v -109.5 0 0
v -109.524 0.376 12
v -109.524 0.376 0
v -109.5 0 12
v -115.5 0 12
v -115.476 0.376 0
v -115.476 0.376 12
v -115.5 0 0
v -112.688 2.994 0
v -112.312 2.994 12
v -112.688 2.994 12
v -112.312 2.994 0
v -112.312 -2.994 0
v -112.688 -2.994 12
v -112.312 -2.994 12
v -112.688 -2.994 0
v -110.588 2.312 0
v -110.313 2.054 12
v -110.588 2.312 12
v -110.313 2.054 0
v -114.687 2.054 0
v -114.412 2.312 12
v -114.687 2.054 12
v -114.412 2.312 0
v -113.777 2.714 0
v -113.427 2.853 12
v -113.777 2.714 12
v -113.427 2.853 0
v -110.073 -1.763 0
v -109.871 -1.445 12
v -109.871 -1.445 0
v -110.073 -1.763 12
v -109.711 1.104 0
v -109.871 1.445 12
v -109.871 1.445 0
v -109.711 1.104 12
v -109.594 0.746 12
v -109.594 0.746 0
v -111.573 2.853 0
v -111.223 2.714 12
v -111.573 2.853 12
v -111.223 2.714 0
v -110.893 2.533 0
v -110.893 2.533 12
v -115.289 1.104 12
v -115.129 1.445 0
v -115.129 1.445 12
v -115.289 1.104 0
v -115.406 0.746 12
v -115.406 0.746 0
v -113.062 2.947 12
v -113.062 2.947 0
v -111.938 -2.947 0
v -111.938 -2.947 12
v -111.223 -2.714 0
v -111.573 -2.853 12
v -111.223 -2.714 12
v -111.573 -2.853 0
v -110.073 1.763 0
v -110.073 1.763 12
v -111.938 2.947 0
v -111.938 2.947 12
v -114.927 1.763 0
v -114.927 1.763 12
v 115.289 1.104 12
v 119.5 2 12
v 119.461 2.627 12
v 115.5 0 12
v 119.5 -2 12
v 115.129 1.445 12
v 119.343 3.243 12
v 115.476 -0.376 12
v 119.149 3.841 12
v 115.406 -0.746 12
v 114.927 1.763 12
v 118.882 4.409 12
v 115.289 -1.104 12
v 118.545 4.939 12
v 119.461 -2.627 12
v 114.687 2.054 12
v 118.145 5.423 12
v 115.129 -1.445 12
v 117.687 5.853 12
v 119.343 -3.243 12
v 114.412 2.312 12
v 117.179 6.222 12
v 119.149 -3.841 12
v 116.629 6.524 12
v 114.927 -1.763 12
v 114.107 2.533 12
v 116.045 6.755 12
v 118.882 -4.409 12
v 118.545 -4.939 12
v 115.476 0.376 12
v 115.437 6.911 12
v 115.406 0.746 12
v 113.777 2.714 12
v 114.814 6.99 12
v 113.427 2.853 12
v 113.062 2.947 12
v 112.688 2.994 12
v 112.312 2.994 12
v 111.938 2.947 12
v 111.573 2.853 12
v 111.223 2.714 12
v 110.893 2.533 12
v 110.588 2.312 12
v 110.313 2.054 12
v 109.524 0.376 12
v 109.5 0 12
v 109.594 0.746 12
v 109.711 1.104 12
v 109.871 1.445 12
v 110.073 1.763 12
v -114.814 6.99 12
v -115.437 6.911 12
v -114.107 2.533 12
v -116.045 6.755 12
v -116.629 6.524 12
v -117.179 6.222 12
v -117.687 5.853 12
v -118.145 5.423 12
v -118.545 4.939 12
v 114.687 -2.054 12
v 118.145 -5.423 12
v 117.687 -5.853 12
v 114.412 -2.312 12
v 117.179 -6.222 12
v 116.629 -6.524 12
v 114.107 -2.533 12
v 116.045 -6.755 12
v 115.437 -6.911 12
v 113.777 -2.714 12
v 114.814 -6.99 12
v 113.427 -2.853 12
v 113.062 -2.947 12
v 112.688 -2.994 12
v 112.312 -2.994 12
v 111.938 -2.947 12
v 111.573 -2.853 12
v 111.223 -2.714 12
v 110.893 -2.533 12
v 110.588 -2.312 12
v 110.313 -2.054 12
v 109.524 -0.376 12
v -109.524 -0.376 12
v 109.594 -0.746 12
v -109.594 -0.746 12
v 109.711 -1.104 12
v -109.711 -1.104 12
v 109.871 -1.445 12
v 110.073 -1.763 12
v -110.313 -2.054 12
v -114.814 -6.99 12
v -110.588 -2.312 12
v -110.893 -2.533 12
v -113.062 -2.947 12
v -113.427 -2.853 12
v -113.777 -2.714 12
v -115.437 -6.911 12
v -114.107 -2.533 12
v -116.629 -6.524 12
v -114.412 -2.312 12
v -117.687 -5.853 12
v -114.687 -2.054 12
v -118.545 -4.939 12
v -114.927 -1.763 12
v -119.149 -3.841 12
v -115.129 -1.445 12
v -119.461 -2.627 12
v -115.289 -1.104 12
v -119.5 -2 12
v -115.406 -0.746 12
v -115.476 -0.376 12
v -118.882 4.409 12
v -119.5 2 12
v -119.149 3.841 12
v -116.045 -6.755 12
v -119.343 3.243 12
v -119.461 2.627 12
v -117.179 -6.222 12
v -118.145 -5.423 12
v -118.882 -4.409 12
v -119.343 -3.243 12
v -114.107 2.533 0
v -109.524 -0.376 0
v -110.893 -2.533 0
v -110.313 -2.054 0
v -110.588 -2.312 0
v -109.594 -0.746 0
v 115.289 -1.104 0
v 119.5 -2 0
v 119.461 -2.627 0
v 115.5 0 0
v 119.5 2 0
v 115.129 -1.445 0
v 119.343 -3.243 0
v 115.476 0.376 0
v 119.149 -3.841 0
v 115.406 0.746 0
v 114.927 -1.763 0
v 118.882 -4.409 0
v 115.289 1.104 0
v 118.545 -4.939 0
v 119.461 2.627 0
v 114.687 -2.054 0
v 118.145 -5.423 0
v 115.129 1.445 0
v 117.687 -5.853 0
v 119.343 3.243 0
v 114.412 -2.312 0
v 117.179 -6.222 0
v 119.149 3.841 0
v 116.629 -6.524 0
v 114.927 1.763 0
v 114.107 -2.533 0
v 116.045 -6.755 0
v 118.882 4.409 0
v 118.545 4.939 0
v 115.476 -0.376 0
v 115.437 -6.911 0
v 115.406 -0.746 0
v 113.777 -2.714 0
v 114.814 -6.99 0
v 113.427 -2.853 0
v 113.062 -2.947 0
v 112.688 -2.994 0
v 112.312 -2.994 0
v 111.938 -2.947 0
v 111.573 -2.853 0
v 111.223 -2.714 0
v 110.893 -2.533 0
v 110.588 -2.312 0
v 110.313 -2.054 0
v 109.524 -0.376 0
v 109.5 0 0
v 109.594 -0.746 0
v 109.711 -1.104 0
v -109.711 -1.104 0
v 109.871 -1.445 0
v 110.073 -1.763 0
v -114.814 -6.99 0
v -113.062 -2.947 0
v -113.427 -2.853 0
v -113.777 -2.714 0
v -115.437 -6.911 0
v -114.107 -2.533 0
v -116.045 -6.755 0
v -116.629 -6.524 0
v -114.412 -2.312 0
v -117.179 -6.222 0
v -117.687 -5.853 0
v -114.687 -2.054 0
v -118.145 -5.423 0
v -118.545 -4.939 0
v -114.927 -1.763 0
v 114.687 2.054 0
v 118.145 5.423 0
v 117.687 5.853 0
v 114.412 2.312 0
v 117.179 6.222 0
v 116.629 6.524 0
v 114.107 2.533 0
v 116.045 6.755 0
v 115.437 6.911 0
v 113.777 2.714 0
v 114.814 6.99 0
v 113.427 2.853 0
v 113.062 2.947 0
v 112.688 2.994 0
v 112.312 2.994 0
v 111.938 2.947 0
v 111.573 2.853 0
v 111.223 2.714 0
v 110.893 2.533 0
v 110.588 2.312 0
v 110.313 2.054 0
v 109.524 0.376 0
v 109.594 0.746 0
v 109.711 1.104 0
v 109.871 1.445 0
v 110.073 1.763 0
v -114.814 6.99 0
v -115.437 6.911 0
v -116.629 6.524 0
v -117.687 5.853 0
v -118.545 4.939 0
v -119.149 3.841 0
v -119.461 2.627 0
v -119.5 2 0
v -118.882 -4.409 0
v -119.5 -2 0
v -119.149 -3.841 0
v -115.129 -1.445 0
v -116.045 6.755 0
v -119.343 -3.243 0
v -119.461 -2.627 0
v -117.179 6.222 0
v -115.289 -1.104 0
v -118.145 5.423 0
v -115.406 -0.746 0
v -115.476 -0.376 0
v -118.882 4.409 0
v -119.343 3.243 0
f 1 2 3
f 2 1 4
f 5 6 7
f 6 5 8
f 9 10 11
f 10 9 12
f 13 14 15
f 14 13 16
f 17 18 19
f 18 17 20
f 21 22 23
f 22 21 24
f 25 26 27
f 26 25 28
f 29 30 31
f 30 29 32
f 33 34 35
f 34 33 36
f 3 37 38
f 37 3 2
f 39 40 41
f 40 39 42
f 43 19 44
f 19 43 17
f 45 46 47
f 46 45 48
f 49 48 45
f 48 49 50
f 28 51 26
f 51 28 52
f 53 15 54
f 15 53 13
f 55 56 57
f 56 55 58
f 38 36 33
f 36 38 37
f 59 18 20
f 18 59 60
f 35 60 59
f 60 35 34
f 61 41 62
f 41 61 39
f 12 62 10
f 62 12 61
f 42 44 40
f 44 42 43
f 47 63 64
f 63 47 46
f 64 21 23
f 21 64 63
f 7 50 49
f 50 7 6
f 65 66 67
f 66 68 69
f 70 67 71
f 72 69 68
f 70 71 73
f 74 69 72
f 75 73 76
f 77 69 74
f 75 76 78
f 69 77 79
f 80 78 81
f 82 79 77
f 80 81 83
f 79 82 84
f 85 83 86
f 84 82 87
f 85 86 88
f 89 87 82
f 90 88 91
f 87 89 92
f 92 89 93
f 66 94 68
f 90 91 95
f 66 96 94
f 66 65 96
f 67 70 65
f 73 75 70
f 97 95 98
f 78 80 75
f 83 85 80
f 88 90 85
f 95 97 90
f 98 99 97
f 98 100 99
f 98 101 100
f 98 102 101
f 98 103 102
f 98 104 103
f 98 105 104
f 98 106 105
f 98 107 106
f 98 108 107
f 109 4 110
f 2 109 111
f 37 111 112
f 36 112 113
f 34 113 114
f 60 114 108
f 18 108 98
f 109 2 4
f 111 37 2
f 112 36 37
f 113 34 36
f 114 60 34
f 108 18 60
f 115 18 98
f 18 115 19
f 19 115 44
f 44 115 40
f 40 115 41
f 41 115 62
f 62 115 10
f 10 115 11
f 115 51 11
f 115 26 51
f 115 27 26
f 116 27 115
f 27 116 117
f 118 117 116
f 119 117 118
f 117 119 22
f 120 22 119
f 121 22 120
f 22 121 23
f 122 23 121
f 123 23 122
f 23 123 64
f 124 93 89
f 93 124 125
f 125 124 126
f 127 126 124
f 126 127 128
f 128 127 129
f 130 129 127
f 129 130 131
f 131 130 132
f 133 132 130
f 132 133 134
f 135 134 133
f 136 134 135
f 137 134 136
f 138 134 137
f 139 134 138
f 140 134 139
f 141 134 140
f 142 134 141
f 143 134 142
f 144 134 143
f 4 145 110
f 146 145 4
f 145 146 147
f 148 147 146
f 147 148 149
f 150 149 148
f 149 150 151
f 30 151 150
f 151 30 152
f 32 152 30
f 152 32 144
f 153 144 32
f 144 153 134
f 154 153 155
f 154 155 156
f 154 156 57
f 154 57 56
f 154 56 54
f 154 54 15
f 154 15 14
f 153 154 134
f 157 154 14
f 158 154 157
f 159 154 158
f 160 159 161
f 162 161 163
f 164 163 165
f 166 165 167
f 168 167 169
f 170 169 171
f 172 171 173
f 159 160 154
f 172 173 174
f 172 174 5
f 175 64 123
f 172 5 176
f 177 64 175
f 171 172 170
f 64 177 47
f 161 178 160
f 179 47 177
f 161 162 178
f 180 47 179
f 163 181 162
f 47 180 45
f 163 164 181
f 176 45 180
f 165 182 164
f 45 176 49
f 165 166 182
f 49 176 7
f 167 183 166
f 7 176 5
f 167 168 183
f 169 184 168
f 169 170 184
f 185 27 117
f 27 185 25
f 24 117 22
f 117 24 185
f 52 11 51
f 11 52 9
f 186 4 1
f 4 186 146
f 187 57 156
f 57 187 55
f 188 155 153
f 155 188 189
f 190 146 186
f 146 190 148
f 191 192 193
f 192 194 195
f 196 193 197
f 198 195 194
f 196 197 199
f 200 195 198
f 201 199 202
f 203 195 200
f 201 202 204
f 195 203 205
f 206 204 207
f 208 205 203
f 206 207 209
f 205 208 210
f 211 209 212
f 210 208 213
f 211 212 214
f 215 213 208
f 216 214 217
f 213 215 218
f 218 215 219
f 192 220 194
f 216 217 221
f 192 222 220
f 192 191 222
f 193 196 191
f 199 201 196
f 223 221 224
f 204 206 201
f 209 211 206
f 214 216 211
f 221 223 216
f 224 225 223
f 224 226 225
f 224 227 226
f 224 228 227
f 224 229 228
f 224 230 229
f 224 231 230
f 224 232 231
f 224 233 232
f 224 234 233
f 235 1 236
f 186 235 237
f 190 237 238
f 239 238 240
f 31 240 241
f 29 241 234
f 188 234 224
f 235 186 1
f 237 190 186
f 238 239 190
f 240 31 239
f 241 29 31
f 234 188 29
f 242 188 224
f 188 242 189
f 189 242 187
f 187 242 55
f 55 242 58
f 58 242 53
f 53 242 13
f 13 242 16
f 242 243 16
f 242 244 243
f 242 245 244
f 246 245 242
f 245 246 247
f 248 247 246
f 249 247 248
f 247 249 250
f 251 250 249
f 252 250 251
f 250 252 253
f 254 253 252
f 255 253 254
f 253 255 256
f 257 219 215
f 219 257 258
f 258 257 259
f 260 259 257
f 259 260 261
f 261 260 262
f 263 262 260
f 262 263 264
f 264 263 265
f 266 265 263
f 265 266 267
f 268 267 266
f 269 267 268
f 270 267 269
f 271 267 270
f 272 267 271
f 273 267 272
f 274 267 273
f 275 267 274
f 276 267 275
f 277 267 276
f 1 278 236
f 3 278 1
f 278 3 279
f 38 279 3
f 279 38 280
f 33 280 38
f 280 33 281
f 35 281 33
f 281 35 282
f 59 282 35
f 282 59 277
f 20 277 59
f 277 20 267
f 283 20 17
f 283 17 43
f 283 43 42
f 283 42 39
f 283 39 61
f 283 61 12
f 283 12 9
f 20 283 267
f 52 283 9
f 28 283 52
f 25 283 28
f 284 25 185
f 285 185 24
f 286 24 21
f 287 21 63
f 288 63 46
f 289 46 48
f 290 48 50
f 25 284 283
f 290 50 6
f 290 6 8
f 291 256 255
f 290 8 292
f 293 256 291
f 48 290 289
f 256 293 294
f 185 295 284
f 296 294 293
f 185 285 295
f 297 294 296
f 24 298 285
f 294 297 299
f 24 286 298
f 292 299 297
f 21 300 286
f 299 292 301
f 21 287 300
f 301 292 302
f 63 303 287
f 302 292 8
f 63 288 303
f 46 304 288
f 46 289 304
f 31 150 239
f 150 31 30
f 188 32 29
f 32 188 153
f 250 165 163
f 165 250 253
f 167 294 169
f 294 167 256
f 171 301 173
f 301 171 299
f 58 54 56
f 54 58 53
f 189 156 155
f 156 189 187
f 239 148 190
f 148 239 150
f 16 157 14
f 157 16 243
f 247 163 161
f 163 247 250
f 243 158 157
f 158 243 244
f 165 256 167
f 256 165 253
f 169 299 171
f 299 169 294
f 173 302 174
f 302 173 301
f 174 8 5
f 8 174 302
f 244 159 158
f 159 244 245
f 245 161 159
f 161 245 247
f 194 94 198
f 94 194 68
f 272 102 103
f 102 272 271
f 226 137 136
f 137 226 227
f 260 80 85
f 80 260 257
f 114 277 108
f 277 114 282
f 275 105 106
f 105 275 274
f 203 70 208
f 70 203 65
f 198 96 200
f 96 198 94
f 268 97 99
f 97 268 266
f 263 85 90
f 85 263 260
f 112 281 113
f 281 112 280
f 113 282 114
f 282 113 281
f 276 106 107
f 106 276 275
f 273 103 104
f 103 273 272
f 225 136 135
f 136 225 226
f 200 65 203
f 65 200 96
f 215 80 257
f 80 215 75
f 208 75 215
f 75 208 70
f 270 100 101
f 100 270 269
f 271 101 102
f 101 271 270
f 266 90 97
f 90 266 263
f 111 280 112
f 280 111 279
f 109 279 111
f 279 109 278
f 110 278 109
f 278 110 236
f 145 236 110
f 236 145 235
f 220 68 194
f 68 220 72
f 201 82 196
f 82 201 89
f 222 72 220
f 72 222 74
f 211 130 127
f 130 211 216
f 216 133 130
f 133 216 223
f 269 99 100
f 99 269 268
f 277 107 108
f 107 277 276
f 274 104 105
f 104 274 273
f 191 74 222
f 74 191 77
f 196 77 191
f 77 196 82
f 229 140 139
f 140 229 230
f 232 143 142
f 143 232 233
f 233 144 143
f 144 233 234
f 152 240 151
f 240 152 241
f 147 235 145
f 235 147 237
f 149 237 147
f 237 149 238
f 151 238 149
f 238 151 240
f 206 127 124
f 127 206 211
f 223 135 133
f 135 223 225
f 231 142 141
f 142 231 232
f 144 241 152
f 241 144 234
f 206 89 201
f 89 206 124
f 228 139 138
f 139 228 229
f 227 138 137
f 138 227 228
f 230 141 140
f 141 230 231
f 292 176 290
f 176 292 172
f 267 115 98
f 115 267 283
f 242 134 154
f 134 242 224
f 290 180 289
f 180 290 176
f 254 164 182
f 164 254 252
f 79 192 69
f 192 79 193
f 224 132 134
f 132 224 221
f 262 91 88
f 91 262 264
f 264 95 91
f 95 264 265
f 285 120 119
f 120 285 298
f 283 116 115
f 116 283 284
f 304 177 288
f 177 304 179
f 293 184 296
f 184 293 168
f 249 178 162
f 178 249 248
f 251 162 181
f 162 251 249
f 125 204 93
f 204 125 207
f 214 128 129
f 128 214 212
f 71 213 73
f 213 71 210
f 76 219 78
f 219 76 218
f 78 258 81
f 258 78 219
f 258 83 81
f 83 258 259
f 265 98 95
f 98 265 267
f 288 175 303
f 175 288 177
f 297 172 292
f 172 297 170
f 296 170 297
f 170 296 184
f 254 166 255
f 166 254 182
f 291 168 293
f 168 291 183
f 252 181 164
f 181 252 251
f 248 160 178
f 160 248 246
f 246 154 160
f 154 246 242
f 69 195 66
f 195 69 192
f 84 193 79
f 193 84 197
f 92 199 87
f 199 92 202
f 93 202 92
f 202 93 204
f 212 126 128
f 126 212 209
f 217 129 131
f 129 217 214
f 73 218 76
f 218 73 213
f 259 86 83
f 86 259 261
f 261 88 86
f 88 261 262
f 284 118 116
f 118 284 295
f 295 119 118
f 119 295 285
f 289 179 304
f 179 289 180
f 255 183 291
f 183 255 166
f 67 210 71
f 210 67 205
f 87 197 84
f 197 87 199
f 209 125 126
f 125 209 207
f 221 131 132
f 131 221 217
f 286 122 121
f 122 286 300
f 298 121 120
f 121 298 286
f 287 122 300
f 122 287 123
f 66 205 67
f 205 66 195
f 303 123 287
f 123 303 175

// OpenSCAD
$fn = 50;


difference() {
	union() {
		hull() {
			translate(v = [-114.5000000000, 2.0000000000, 0]) {
				cylinder(h = 12, r = 5);
			}
			translate(v = [114.5000000000, 2.0000000000, 0]) {
				cylinder(h = 12, r = 5);
			}
			translate(v = [-114.5000000000, -2.0000000000, 0]) {
				cylinder(h = 12, r = 5);
			}
			translate(v = [114.5000000000, -2.0000000000, 0]) {
				cylinder(h = 12, r = 5);
			}
		}
	}
	union() {
		translate(v = [-112.5000000000, 0.0000000000, 0]) {
			cylinder(h = 12, r = 3.0000000000);
		}
		translate(v = [112.5000000000, 0.0000000000, 0]) {
			cylinder(h = 12, r = 3.0000000000);
		}
		translate(v = [-112.5000000000, 0.0000000000, 0]) {
			cylinder(h = 12, r = 1.5000000000);
		}
		translate(v = [112.5000000000, 0.0000000000, 0]) {
			cylinder(h = 12, r = 1.5000000000);
		}
		translate(v = [-112.5000000000, 0.0000000000, 0]) {
			cylinder(h = 12, r = 1.5000000000);
		}
		translate(v = [112.5000000000, 0.0000000000, 0]) {
			cylinder(h = 12, r = 1.5000000000);
		}
		translate(v = [-112.5000000000, 0.0000000000, 0]) {
			cylinder(h = 12, r = 1.5000000000);
		}
		translate(v = [112.5000000000, 0.0000000000, 0]) {
			cylinder(h = 12, r = 1.5000000000);
		}
	}
}
